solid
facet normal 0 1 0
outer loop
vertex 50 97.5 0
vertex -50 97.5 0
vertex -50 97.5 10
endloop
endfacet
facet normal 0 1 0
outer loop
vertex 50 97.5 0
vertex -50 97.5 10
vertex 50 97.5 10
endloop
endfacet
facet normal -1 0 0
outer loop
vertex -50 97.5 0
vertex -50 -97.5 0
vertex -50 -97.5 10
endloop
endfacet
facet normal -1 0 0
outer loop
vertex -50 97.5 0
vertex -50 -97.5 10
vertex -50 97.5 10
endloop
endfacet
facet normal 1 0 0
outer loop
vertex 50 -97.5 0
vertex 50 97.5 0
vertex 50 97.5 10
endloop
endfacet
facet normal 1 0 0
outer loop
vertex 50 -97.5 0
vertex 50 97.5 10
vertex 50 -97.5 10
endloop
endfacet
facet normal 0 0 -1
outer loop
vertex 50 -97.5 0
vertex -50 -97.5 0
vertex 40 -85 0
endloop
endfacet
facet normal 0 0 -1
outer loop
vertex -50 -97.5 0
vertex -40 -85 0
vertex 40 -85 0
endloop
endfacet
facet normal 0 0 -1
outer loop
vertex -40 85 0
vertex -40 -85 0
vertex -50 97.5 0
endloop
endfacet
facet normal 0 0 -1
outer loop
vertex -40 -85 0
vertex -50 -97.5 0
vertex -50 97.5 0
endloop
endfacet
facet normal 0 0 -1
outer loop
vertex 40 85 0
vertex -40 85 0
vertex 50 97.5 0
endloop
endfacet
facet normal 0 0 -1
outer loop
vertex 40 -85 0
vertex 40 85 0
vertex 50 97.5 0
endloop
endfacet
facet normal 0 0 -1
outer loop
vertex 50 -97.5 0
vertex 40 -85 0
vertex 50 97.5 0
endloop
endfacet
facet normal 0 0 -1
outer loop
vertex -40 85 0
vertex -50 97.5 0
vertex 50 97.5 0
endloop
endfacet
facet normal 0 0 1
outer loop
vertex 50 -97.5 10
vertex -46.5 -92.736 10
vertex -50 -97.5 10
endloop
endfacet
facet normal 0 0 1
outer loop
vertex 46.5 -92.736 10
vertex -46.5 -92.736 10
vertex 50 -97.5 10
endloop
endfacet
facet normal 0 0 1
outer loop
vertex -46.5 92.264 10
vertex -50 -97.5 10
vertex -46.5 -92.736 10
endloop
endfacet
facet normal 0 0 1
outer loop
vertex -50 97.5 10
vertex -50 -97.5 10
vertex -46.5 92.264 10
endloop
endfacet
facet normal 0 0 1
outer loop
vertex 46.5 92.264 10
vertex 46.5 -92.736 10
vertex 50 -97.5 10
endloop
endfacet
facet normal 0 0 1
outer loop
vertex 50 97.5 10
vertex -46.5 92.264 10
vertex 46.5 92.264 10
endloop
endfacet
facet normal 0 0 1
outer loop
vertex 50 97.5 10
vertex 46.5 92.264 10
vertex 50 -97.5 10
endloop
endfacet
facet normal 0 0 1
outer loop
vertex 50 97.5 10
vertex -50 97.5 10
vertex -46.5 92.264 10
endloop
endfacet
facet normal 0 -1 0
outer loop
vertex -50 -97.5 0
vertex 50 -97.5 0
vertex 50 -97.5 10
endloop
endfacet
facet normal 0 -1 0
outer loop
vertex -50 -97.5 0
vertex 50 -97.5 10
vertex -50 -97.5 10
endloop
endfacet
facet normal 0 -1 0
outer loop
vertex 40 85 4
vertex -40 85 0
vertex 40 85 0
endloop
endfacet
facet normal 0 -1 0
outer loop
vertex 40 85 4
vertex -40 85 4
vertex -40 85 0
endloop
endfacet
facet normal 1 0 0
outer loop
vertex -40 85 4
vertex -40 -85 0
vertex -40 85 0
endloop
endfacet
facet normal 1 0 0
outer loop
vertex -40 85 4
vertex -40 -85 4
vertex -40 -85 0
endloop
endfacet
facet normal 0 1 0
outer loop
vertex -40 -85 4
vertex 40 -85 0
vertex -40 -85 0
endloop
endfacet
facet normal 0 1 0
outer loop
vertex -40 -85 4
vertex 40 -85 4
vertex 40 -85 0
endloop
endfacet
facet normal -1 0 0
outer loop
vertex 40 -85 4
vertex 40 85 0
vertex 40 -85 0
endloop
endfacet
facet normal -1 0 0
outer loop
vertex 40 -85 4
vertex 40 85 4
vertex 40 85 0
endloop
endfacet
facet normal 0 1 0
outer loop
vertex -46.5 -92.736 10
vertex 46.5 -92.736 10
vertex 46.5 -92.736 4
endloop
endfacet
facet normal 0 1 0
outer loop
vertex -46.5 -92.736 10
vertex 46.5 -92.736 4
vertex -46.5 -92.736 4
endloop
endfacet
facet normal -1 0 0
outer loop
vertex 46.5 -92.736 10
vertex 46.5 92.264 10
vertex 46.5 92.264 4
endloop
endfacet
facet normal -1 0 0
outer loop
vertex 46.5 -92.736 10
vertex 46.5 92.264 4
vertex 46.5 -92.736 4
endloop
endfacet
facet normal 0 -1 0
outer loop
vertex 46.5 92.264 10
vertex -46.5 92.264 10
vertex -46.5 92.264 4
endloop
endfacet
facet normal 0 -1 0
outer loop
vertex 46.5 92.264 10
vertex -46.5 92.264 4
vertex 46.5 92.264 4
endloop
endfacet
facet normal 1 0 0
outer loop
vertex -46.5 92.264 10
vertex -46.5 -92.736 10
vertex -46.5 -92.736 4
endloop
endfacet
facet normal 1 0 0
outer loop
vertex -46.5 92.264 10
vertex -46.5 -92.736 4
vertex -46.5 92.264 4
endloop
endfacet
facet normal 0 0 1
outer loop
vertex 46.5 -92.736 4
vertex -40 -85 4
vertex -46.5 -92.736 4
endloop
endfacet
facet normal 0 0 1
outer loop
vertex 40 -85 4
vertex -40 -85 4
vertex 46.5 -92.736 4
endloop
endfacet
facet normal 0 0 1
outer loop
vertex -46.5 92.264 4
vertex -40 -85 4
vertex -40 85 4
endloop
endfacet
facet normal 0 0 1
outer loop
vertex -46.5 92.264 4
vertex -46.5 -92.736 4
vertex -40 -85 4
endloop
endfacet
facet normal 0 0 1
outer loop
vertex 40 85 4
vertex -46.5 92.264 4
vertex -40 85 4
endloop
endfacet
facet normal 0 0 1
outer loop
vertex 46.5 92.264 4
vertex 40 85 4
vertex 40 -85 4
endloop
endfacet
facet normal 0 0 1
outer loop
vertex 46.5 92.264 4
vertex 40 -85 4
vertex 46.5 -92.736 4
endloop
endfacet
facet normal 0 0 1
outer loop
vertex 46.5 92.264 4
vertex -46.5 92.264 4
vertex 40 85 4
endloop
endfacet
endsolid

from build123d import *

# Parameters (mm, degrees)
SKETCH_W        = 100
SKETCH_H        = 195
PAD_DEPTH       = 10
SKETCH001_W     = 80
SKETCH001_H     = 170
POCKET_DEPTH    = 10.001
SKETCH003_W     = 93
SKETCH003_H     = 185
POCKET001_DEPTH = 6


with BuildPart() as part:
    # Sketch → Pad (new body)
    with BuildSketch(Plane.XY):
        Rectangle(SKETCH_W, SKETCH_H)
    extrude(amount=PAD_DEPTH)

    # Sketch001 → Pocket (cut, through all)
    with BuildSketch(Plane.XY.offset(10)):
        Rectangle(SKETCH001_W, SKETCH001_H)
    extrude(amount=-POCKET_DEPTH, mode=Mode.SUBTRACT)

    # Sketch003 → Pocket001 (cut)
    with BuildSketch(Plane.XY.offset(10)):
        with Locations((0, -0.235933)):
            Rectangle(SKETCH003_W, SKETCH003_H)
    extrude(amount=-POCKET001_DEPTH, mode=Mode.SUBTRACT)


solid = part.part
